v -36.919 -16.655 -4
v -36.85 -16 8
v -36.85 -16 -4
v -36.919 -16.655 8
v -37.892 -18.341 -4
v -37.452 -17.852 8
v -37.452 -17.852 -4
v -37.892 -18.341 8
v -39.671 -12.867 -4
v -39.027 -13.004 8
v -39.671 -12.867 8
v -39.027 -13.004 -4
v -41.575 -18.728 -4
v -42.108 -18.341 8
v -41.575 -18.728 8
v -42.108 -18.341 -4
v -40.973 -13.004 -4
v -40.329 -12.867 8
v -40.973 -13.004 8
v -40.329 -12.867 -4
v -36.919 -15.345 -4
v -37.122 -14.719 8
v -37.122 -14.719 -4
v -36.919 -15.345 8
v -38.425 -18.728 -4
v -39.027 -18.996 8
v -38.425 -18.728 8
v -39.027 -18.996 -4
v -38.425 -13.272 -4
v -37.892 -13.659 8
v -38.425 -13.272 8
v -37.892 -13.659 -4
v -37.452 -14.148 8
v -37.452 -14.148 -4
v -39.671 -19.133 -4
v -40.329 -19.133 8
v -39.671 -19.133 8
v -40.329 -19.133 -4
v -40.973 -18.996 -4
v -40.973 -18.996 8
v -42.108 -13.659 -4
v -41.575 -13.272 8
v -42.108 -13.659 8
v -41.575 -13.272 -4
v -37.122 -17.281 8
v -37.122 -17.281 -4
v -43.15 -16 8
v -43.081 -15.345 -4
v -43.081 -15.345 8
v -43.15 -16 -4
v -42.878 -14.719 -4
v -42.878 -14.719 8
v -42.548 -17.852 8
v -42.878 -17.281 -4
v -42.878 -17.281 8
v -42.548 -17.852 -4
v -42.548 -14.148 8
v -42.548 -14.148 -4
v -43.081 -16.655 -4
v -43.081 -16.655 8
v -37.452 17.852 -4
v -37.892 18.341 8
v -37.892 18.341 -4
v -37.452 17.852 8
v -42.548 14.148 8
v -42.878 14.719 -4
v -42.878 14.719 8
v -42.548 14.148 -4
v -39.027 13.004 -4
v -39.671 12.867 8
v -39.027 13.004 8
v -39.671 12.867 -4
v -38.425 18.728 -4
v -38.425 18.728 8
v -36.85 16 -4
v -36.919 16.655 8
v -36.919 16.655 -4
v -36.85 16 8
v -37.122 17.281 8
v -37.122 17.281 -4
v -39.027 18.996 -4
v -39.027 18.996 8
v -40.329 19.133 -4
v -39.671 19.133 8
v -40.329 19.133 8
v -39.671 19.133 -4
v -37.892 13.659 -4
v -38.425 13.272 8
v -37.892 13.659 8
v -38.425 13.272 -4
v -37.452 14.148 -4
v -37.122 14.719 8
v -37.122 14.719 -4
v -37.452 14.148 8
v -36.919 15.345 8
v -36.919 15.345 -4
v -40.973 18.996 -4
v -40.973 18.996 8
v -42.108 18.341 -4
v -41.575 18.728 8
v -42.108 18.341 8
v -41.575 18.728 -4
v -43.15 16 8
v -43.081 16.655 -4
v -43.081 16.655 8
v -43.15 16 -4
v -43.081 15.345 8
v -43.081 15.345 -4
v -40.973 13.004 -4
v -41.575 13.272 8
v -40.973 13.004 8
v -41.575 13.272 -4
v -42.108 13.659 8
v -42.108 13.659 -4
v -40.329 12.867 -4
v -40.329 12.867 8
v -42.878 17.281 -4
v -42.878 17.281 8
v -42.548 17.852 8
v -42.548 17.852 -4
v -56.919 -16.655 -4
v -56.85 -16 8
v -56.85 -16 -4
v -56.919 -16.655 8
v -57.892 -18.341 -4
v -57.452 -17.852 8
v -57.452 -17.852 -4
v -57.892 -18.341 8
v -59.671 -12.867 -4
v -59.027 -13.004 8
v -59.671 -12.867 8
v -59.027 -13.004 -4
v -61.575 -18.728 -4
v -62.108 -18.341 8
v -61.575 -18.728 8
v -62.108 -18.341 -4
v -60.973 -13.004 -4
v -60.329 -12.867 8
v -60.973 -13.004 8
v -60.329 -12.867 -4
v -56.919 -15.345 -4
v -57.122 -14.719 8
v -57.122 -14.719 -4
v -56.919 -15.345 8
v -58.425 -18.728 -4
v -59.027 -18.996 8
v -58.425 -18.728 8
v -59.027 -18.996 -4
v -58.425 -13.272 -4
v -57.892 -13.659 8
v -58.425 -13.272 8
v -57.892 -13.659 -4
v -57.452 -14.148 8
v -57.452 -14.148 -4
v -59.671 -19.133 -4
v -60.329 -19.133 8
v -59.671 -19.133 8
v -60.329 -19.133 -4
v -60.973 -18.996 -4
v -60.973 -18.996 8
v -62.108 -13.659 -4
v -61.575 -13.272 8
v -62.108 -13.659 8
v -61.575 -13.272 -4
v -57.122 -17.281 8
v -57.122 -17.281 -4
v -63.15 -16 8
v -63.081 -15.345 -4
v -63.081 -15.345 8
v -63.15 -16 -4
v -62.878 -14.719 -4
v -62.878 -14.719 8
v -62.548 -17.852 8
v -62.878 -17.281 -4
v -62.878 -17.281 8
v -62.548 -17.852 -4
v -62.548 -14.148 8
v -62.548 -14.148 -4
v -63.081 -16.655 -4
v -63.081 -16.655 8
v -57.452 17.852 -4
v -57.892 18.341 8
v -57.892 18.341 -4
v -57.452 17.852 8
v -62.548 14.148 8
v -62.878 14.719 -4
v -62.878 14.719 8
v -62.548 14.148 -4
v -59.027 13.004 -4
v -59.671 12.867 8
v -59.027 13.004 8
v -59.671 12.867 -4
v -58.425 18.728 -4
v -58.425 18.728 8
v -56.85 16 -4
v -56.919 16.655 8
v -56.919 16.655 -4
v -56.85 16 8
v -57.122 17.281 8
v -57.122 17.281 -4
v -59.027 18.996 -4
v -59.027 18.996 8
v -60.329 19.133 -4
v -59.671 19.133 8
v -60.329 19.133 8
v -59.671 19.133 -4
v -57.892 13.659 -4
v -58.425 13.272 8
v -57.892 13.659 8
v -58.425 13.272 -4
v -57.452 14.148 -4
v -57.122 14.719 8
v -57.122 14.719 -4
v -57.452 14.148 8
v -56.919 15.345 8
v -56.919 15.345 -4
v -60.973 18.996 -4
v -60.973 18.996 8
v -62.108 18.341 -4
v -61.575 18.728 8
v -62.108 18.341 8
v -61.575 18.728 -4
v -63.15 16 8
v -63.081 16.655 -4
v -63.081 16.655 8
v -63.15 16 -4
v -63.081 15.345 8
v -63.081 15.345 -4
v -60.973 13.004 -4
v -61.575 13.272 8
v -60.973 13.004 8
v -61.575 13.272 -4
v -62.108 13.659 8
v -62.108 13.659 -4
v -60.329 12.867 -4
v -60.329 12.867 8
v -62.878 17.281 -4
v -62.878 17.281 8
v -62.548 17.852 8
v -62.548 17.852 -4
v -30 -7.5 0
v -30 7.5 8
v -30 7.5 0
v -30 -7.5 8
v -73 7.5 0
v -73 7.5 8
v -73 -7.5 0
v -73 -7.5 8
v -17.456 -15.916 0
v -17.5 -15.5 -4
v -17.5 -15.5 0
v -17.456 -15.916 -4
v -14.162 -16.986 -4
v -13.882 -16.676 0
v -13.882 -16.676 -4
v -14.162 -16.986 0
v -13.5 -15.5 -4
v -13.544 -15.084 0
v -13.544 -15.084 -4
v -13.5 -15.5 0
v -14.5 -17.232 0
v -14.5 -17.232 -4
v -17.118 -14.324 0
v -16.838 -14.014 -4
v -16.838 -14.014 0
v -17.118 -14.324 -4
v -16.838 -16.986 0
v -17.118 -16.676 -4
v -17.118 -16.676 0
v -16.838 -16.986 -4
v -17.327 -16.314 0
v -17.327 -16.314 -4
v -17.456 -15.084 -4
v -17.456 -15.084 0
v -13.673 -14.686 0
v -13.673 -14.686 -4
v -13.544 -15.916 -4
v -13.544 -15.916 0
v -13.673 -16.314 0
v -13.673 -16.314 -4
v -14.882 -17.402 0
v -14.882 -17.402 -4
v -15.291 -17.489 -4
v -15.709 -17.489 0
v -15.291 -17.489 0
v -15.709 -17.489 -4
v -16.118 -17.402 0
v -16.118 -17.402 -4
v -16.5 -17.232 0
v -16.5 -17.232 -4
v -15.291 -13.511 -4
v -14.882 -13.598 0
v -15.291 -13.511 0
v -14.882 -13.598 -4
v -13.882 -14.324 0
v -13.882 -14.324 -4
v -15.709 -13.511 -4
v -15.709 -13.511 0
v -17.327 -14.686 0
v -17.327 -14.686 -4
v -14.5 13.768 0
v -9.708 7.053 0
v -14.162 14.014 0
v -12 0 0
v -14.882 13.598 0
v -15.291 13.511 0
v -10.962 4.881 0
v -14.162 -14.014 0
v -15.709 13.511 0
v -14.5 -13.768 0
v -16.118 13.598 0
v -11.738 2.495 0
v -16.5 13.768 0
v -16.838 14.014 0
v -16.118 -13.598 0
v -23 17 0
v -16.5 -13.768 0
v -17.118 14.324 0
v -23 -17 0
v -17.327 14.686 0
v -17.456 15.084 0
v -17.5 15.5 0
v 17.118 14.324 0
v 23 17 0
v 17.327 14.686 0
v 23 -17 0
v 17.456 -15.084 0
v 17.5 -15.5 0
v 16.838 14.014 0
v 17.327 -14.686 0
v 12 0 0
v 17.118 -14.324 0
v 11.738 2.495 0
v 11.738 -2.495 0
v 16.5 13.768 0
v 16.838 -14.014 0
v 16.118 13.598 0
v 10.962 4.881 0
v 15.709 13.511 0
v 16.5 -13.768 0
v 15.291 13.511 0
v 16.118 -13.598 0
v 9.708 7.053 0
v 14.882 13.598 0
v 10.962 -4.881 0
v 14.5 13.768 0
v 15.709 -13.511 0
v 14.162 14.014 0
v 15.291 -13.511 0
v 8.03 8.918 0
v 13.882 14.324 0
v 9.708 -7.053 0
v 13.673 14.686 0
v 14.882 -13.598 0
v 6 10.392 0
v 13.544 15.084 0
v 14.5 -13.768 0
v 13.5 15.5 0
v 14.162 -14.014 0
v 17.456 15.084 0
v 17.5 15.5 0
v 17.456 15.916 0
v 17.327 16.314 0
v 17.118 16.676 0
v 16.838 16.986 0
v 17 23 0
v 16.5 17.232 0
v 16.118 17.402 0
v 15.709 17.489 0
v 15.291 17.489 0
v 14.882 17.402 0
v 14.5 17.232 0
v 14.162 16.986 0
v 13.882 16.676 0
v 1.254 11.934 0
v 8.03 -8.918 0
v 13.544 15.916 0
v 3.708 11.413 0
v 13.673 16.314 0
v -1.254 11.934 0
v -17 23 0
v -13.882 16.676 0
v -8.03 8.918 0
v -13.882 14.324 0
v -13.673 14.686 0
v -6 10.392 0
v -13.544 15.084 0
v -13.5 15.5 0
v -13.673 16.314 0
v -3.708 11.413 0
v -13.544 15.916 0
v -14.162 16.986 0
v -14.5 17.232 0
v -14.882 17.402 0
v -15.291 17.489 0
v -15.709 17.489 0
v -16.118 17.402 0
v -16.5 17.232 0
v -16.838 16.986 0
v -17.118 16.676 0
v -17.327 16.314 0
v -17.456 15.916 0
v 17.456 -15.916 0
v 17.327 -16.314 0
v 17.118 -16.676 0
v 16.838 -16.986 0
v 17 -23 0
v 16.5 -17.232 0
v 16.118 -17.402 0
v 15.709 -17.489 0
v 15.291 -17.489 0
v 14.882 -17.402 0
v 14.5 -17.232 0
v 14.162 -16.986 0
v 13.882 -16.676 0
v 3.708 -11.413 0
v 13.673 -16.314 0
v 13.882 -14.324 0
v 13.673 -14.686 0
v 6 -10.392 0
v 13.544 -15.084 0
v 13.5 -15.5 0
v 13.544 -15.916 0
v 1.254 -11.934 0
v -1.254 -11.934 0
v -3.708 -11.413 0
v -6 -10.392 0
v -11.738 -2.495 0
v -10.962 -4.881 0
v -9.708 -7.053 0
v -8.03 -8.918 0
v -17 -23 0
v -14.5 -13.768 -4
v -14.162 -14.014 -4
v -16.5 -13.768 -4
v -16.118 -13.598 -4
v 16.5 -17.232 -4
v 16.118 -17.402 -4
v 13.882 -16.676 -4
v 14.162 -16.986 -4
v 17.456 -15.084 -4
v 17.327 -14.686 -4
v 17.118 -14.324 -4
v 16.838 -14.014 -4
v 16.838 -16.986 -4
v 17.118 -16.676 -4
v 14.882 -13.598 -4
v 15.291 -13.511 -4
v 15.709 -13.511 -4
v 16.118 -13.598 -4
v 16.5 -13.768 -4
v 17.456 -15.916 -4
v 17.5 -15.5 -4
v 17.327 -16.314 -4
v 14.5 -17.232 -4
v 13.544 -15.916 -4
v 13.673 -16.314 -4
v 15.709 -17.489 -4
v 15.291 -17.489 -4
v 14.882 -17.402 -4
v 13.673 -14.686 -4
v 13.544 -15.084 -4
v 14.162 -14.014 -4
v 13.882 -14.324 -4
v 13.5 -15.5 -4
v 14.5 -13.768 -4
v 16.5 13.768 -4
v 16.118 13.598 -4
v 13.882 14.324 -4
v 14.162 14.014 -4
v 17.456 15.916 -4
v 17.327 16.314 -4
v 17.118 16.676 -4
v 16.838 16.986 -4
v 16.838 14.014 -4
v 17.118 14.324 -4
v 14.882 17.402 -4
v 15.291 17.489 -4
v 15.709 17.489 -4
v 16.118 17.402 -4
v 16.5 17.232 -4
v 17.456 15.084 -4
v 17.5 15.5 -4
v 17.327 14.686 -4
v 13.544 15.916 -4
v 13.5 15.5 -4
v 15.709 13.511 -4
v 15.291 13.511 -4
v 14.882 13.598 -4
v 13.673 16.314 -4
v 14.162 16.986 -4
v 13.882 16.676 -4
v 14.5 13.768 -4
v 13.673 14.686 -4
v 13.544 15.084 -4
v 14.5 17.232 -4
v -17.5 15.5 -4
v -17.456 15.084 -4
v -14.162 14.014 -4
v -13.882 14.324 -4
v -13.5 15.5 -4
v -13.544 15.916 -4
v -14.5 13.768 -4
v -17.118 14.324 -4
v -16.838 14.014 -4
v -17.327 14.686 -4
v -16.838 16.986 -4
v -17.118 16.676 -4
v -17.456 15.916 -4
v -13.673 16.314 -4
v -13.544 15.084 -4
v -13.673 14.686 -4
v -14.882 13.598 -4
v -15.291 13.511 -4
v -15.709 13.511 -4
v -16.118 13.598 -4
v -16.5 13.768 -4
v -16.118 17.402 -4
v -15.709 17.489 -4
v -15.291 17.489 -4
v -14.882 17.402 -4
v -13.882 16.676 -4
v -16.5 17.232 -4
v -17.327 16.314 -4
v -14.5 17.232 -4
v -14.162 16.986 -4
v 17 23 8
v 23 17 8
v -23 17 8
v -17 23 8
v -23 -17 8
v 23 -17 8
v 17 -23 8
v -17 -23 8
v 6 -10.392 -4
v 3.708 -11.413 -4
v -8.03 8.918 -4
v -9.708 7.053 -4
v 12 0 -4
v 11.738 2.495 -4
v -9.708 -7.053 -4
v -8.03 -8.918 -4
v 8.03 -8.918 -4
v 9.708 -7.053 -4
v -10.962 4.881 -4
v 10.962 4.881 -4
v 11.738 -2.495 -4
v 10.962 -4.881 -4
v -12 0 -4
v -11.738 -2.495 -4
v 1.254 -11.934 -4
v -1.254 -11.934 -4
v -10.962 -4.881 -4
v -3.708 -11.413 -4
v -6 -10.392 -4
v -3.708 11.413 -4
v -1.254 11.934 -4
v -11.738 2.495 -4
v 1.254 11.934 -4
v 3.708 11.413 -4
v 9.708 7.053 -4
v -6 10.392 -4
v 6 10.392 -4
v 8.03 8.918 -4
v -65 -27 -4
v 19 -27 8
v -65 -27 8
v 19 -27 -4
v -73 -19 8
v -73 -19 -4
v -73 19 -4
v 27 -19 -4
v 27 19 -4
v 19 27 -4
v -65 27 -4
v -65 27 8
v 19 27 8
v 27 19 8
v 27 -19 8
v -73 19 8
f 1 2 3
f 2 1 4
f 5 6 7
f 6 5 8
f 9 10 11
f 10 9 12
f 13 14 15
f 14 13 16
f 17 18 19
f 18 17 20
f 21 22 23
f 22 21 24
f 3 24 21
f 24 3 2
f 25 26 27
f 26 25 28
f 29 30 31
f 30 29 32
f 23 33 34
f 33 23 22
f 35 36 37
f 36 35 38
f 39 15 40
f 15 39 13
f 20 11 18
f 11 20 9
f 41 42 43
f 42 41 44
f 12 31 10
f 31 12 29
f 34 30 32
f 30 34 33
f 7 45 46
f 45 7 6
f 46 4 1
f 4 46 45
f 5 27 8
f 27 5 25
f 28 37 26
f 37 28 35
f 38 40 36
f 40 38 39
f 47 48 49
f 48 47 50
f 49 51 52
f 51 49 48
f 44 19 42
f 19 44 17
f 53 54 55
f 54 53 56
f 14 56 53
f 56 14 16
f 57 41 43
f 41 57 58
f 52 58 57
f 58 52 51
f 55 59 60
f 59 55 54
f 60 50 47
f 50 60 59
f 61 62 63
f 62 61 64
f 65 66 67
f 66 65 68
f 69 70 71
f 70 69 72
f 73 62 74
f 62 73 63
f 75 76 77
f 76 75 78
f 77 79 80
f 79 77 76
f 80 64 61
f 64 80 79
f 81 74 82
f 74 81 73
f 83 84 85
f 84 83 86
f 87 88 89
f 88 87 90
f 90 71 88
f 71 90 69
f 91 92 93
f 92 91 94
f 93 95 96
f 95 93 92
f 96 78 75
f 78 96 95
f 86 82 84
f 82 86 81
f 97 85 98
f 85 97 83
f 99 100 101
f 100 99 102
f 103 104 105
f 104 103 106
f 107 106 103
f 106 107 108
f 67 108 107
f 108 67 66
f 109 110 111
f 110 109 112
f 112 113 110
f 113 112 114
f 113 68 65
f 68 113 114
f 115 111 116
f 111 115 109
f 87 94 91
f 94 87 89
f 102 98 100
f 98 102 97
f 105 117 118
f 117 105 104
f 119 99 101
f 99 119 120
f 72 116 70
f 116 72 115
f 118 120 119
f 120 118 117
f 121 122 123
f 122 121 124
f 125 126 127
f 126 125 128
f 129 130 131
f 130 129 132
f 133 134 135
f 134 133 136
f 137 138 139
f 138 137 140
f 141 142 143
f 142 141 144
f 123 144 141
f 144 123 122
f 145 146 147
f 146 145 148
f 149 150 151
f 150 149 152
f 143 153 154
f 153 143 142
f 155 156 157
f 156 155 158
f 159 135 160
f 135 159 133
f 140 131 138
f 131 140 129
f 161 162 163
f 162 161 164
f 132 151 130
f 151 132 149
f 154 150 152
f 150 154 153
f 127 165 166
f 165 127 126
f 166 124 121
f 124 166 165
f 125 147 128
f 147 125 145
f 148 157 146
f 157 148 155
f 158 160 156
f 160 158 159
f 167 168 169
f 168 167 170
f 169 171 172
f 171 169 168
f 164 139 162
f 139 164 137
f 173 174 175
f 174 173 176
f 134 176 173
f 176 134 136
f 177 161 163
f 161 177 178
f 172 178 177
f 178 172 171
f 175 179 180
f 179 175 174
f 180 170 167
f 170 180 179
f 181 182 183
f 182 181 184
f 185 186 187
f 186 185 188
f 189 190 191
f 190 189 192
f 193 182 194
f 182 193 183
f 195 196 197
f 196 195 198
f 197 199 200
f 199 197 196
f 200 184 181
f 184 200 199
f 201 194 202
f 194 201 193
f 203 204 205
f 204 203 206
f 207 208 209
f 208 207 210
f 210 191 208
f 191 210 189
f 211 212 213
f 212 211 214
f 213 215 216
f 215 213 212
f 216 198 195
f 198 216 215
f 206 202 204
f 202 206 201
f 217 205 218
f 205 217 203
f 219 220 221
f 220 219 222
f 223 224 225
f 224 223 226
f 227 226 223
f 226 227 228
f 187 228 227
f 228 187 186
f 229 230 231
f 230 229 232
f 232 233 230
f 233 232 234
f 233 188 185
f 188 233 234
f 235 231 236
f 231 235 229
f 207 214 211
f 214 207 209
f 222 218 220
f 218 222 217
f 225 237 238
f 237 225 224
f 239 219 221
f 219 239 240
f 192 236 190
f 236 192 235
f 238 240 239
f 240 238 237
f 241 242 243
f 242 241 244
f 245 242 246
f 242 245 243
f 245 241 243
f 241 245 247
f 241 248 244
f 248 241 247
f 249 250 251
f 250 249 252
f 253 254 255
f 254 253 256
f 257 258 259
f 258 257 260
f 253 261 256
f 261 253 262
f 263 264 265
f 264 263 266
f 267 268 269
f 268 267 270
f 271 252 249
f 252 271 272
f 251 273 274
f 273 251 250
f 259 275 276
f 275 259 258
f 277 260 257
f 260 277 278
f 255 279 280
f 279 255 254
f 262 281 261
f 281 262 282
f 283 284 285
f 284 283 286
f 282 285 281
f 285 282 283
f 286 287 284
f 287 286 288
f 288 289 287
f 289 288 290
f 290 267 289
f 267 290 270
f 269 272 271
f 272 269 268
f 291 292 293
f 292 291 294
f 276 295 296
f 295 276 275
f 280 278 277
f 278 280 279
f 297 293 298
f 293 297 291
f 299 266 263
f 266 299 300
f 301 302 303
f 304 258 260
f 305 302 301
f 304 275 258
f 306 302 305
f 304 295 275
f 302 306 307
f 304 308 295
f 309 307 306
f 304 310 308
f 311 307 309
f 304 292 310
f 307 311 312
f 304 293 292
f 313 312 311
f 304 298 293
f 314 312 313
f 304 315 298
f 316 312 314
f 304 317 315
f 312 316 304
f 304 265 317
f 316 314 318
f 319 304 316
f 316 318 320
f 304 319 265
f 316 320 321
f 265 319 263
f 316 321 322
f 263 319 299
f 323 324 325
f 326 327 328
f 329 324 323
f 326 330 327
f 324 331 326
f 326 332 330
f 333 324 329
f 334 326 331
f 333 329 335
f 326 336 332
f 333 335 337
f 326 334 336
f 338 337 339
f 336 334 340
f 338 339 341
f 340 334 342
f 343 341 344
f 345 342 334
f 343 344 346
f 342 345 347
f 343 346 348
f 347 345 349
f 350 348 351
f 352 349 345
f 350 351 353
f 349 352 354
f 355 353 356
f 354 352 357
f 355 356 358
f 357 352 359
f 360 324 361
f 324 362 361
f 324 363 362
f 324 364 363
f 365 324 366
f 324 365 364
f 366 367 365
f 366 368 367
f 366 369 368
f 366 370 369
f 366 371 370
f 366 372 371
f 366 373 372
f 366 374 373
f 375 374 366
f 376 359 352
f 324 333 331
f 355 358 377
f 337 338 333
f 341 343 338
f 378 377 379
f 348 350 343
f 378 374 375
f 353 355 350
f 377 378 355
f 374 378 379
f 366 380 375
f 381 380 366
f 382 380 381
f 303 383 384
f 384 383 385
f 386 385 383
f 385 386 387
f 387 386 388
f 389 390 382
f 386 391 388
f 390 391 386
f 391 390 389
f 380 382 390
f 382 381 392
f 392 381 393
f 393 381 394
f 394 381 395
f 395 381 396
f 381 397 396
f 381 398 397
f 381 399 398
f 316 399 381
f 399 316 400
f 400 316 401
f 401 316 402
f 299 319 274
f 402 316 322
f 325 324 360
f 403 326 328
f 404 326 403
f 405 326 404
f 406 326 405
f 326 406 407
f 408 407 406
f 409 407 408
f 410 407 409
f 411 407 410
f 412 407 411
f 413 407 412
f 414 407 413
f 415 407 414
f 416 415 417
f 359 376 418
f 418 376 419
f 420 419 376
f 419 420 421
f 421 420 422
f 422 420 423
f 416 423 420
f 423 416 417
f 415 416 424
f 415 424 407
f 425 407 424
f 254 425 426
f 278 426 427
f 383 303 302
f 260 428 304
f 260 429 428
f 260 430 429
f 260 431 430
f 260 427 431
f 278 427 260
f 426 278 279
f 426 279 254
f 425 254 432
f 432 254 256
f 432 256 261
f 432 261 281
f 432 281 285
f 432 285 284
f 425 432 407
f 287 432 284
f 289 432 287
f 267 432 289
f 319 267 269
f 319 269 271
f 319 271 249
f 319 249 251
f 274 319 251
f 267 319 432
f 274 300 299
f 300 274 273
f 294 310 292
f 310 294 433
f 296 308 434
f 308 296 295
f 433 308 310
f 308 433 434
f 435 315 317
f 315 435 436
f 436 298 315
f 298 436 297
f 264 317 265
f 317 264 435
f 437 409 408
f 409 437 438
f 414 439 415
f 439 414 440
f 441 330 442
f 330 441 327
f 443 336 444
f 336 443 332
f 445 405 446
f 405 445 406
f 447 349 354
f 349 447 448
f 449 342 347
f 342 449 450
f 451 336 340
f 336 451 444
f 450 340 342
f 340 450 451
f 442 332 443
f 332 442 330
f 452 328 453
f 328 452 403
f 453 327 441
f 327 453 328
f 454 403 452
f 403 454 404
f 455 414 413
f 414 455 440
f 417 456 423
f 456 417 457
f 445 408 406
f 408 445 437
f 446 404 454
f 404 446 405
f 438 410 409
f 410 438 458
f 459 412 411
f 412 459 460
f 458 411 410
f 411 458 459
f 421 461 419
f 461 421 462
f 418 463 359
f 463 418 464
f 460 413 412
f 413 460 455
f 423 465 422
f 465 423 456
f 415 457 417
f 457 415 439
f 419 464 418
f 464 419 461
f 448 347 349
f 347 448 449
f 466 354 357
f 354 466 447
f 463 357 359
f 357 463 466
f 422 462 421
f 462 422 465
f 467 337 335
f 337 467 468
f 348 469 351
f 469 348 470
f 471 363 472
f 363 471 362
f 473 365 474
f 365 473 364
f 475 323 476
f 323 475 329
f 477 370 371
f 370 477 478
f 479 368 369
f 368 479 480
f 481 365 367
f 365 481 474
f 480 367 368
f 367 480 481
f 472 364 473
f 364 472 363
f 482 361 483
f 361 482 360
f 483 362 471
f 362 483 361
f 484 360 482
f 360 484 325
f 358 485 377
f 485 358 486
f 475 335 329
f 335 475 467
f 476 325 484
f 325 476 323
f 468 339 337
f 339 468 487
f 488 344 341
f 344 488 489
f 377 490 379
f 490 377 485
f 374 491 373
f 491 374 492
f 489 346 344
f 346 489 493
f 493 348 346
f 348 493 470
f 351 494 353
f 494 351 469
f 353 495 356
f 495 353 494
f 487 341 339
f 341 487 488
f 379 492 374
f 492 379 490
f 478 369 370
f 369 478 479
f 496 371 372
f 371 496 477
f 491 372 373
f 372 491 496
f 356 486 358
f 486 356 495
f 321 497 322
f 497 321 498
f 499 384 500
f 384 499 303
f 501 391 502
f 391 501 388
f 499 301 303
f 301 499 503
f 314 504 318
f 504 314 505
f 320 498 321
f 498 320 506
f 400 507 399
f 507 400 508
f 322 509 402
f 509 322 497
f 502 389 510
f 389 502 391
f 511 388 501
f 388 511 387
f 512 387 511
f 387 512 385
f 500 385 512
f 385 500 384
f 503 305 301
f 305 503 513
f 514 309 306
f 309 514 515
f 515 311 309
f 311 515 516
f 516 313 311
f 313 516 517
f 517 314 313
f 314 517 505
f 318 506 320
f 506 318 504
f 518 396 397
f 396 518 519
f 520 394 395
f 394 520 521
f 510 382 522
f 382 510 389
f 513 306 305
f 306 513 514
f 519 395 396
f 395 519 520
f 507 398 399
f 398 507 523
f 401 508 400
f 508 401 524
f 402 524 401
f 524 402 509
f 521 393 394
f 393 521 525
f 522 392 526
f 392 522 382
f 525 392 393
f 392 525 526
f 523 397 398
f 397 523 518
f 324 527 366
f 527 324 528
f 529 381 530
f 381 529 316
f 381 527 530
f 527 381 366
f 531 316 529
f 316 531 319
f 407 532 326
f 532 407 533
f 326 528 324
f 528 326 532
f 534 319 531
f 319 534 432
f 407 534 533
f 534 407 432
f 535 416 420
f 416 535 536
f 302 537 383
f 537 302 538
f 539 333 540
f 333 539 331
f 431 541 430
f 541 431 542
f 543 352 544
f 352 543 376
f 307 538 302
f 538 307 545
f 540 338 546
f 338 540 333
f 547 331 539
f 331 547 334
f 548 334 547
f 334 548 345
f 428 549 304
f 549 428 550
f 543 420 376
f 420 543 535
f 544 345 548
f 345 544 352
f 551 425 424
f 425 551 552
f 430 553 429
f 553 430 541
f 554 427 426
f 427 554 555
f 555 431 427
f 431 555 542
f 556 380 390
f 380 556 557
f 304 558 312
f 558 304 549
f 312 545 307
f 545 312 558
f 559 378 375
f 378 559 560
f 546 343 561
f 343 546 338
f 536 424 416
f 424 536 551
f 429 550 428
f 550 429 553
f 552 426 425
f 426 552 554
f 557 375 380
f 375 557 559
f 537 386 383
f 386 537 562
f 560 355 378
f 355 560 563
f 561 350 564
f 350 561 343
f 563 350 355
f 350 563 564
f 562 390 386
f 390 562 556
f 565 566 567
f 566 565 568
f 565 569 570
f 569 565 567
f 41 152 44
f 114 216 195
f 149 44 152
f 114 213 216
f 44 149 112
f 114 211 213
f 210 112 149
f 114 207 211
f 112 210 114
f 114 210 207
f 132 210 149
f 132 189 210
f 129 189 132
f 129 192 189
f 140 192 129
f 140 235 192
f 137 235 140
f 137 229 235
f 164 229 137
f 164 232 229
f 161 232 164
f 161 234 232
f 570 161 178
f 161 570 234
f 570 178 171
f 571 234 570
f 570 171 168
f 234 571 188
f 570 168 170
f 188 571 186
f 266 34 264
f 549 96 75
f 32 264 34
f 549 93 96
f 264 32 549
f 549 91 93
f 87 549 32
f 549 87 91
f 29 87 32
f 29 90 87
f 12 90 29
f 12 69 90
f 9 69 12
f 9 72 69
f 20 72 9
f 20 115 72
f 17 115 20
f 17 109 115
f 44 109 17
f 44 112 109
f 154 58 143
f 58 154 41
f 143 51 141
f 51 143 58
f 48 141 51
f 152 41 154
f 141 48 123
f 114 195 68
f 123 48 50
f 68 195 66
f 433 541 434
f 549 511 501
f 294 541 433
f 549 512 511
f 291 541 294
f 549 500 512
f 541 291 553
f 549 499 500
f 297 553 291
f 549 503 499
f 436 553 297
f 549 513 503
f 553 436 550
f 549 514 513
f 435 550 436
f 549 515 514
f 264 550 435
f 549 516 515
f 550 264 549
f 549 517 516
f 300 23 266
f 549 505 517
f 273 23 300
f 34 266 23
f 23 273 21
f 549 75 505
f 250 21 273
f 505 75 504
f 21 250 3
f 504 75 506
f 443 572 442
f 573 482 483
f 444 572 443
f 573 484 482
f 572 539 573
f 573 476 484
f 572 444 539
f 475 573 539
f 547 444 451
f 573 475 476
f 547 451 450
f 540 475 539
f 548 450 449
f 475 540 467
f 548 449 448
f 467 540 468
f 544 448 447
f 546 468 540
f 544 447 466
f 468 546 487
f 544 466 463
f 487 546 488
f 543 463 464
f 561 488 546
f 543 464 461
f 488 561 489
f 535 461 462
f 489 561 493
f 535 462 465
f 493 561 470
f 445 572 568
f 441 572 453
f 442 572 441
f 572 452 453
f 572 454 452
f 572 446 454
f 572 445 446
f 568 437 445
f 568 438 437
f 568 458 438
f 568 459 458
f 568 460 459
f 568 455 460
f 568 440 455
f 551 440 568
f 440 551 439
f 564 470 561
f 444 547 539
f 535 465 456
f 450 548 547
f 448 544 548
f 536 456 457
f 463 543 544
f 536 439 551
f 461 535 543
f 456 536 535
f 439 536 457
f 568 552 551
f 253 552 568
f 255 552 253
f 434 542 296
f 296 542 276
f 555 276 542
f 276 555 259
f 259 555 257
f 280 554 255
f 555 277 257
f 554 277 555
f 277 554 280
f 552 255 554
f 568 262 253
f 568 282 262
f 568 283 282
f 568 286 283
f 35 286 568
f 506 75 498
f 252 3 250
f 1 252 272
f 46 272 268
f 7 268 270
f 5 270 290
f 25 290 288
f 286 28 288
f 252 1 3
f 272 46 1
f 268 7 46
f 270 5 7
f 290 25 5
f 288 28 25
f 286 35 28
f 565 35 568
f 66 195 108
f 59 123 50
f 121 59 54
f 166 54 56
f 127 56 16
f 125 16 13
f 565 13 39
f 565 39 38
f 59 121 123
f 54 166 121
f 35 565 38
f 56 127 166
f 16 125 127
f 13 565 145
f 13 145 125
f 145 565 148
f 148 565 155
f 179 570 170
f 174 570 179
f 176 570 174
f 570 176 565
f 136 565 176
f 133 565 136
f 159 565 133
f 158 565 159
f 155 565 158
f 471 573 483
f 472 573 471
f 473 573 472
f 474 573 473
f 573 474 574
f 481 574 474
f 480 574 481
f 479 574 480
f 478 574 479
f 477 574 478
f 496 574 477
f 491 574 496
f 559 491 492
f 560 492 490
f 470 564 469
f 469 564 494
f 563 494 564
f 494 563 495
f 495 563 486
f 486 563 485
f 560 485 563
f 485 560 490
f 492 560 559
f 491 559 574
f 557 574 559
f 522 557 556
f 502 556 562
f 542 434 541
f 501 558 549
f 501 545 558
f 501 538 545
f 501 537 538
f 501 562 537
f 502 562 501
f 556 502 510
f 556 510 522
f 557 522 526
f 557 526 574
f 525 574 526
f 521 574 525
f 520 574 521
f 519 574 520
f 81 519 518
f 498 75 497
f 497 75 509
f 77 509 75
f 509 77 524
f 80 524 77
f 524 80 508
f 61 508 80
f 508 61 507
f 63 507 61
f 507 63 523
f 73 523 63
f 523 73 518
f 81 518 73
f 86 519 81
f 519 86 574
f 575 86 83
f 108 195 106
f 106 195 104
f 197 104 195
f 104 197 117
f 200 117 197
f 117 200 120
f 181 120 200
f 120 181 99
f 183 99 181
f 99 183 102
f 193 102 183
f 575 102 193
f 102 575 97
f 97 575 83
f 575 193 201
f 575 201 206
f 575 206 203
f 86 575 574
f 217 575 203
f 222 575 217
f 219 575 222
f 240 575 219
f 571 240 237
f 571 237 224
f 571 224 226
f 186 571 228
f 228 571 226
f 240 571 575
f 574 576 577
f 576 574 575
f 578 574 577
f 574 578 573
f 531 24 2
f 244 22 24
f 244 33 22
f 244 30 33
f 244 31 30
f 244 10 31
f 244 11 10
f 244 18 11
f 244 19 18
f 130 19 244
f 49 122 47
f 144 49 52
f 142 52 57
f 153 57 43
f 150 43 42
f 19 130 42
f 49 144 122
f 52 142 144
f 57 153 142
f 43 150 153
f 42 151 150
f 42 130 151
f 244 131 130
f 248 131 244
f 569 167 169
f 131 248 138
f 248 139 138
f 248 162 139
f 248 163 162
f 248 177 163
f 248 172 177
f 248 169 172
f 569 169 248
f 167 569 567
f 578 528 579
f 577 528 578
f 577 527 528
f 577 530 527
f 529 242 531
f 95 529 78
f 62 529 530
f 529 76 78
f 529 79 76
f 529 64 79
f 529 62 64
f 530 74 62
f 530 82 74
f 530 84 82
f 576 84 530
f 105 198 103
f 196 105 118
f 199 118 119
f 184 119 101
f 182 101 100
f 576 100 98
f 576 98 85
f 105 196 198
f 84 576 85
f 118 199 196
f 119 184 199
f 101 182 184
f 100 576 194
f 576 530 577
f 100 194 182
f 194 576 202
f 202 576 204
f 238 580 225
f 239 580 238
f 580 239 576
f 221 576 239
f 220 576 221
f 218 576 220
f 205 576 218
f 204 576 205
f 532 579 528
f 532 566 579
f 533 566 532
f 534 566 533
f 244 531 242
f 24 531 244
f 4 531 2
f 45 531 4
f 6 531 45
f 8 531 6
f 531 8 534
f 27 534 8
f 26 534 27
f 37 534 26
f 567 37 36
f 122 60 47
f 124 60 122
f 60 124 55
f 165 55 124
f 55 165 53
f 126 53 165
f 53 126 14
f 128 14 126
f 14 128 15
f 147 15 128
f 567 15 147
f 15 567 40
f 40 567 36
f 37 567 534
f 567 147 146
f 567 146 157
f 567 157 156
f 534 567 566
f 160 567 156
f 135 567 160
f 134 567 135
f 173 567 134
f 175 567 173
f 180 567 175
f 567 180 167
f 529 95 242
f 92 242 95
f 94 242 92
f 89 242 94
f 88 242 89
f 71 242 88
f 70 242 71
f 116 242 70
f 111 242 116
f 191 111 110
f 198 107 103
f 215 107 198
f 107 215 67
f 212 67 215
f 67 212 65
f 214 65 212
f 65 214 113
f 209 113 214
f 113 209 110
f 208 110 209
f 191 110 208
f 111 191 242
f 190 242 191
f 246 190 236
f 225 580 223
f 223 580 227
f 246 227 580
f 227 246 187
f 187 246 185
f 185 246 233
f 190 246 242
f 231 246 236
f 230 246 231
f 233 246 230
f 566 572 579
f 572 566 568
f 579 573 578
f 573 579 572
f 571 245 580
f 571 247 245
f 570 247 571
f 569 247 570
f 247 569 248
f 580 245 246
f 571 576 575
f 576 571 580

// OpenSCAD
// file: openscad-skf/skf.scad
SKF_W1		= 0;
SKF_N 		= 1;
SKF_H		= 2;
SKF_H2		= 3;
SKF_H3		= 4;
SKF_L1		= 5;
SKF_L2		= 6;
SKF_L3		= 7;
SKF_L4		= 8;
SKF_W3		= 9;
SKF_H4		= 10;
SKF_H5		= 11;
SKF_S2		= 12;
SKF_W		= 13;
SKF_H1		= 14;
SKF_H6		= 15;
SKF_F		= 16;
SKF_D1		= 17;
SKF_D2		= 18;
SKF_Emin	= 19;
SKF_Emax	= 20;
SKF_Lmax	= 21;
SKF_KGC		= 22;
SKF_KGR		= 23;
SKF_C		= 24;
SKF_C0		= 25;
SKF_Mx		= 26;
SKF_Mx0		= 27;
SKF_Myz		= 28;
SKF_Myz0	= 29;

SKF_PARAM_NAME = ["W1",  "N", "H", "H2", "H3",   "L1",  "L2",  "L3",  "L4",   "W3", "H4", "H5", "S2", "W", "H1",  "H6", "F", "D1", "D2", "E>", "E<",  "L<", "KGW", "KGR",   "C",  "C0", "Mx", "Mx0", "Myz", "Myz0"];     
SKF_LLTHC_U15  = [  34,  9.5,  24, 4.2,   4.6,   63.3,    40,    26,   4.3,    26,   4.0,  4.3,   4,  15, 	 14,   8.5,  60,  4.5,  7.5,   10,   50,  3920,  0.17,   1.4,  8400, 15400,   56,   103,     49,    90];
SKF_LLTHC_U20  = [  44,   12,  30, 8.3,   5.0,   73.3,    50,    36,  15.0,    32,   6.5,  5.7,   5,  20,    18,   9.3,  60,  6.0,  9.5,   10,   50,  3920,  0.26,   2.3, 12400, 24550,  112,   221,     90,   179];
//etc
	
module skf_rail(P, l=1000)
{
	//check l < SKF_Lmax
	w = P[SKF_W];
	h = P[SKF_H1];
	z = P[SKF_H];
	color("#666666")
	translate([-l/2, -w/2, -z])
	cube([l, w, h]);
}

module skf_carriage_bolts(P)
{
	for (i=[-1,1], j=[-1,1]) 
	translate([i*P[SKF_L3] ,j*P[SKF_W3],0]/2)
	children();
}

module skf_carriage(P)
{
	w  = P[SKF_W1];
	h  = P[SKF_H] - P[SKF_H3];
	l1 = P[SKF_L1];
	l2 = P[SKF_L2];
	b  = P[SKF_H4];
	
	difference()
	{
		union()
		{
			color("silver")
			translate([-l2/2, -w/2, -h])
			cube([l2, w, h]);
		
			color("#444444")
			translate([-l1/2, -w/2+0.1, -h])
			cube([l1, w-0.2, h-0.1]);
		}
		color("black")
		skf_carriage_bolts(P) translate([0,0,-b])
		cylinder(d=P[SKF_S2], h=b+0.1);
	}
}

module skf_assembly(P = SKF_LLTHC_U15, l=600, car=[0.5])
{
	translate([0,0,P[SKF_H]]) 
	{
		skf_rail(P,l);
		travel = l - P[SKF_L1];
		for (c = car)
		{
			translate([-travel/2 + travel * c, 0, 0])
			skf_carriage(P);
		}
		children();
	}
}

/*
if ($preview) skf_assembly(car=[0.25 + sin($t*360)/4, 0.75 + (cos($t*360)*0.25)]);
*/
// file: openscad-shorthand/nema.scad
include <../openscad-shorthand/shorthand.scad>

//                                                            
//                                   shaft diam    bolt diam       conn height
//                      base diam    shaft diam@D  bolt depth      conn width
//        size,  h,     base height, shaft length, bolt offset     conn offset bottom
NEMA8  = [[20.0, 32.0], [16.0, 1.5], [4, 3.5,  8], [2.5, 3,  7.7], [4.5, 11.5, 2.5]];
NEMA17 = [[42.0, 40.0], [23.0, 2.0], [8, 7.5, 25], [3.0, 5, 15.5], [4.5, 11.5, 2.5]];

NEMA_DEFAULT = NEMA17;

function nema_size(nema=NEMA_DEFAULT, h)            = [ nema[0][0], nema[0][0], 
                                                        h == undef ? nema[0][2] : h];
function nema_base_size(nema=NEMA_DEFAULT)          = [nema[1][0], nema[1][0], nema[1][1]];
function nema_base_diam(nema=NEMA_DEFAULT)          = nema[1][0];
function nema_base_height(nema=NEMA_DEFAULT)        = nema[1][1];
function nema_shaft_size(nema=NEMA_DEFAULT)         = [nema[2][0], nema[2][0], nema[2][1]];
function nema_shaft_diam(nema=NEMA_DEFAULT)         = nema[2][0];
function nema_shaft_diam_at_d(nema=NEMA_DEFAULT)    = nema[2][1];
function nema_shaft_length(nema=NEMA_DEFAULT)       = nema[2][2];
function nema_hole_diam(nema=NEMA_DEFAULT)          = nema[3][0];
function nema_hole_depth(nema=NEMA_DEFAULT)         = nema[3][1];
function nema_hole_offset(nema=NEMA_DEFAULT)        = nema[3][2];

module nema_foreach_hole(type=NEMA_DEFAULT, at=[[-1,1], [1,1], [1,-1], [-1,-1]])
{
    for (a = at) {
        echo (a); 
        echo (type);
        echo (nema_hole_offset(type));
        
        translate(nema_hole_offset(type) * a) children();
    }
}

module nema(type = NEMA_DEFAULT, h = 30, mask = undef)
{
    bottom = [0,  0, -0.5];
    top    = [0,  0,  0.5];
    bevel  = [3, -3,  0.0];
    bh = nema_base_height(type);
    bd = nema_base_diam(type);
    sd = nema_shaft_diam(type);
    sl = nema_shaft_length(type);
    hd = nema_hole_diam(type);
    hz = nema_hole_depth(type);
    
    
    if (is_list(mask))
    {
        cub(nema_size(type, h) + mask, align=BOTTOM, bevel=bevel);
    
        nema_foreach_hole(type) 
        cyl([hd,hd,hz] + mask, align=TOP);
       
        cyl([bd,bd,sl] + mask, align=TOP);           
    }
    else difference()
    {
        cub(nema_size(type, h), align=BOTTOM, bevel=bevel, at=TOP)
        cyl([sd,sd,sl], align=TOP, at=BOTTOM) 
        cyl([bd,bd,bh], align=TOP);
    
        union() nema_foreach_hole(type) 
        cyl([hd,hd,hz], align=BOTTOM);
    }
}

// nema();
// nema(NEMA8);
// file: openscad-shorthand/shorthand.scad
// GLOBALS
$fs=1;
$fn=30;
$e = 0.001;

// TRANSLATE
module T(x,y=0,z=0) 
{
	if (is_list(x)) translate(x) children();
	else translate([x,y,z]) children();
}
module Tx(v) { T(v,0,0) children(); }
module Ty(v) { T(0,v,0) children(); }
module Tz(v) { T(0,0,v) children(); }

//ROTATE
module R(x,y=0,z=0)
{
	if (is_list(x)) rotate(x) children();
	else rotate([x,y,z]) children();
}
module Rx(v) { R(v,0,0) children(); }
module Ry(v) { R(0,v,0) children(); }
module Rz(v) { R(0,0,v) children(); }

//SCALE
module S(x,y=1,z=1)
{
	if (is_list(x)) scale(x) children();
	else scale([x,y,z]) children();
}
module Sx(v) { S(v,1,1) children(); }
module Sy(v) { S(1,v,1) children(); }
module Sz(v) { S(1,1,v) children(); }

//MIRROR
//module M(axis) { for (i=[-2,0]) scale(i*axis + [1,1,1]) children(); }
module M(x,y=0,z=0) 
{
	if (is_list(x)) mirror(x) children();
	else mirror([x,y,z]) children();
	children();
}
module Mx(d=0) { M([1,0,0]) Tx(d/2) children(); }
module My(d=0) { M([0,1,0]) Ty(d/2) children(); }
module Mz(d=0) { M([0,0,1]) Tz(d/2) children(); }

// VECTOR HELPERS
function vec3(x,y=0,z=0) = is_list(x) ? ([for (i = [0,1,2]) i < len(x) ? x[i] : 0 ]) :  [x,y,z];
function vec2(x,y=0) =     is_list(x) ? ([for (i = [0,1  ]) i < len(x) ? x[i] : 0 ]) :  [x,y];
function X(v) = v[0];
function Y(v) = v[1];
function Z(v) = v[2];
function vabs(x, y=0, z=0) = [for (v=vec3(x,y,z)) abs(v)];
 
function pmul(va,vb) = 
         [for (i = [0:1:max(len(va),len(vb))-1]) 
          (i >= len(va) 
              ? 0 
              : va[i]) * (i >= len(vb) 
                             ? 0 
                             : vb[i])];

RIGHT = [1,0,0]; LEFT = -RIGHT;
FRONT = [0,1,0]; BACK = -FRONT;
TOP =   [0,0,1]; BOTTOM = -TOP;


// SHAPES 
// identical params means easy switching between primitives
// children will have the center of the face 'at' as origin, or are relative to the center of the object when [0,0,0]

// cylinder. if x != y, the cylinder will be a hull of 2 displaced cylinders with diameter equal to min(x,y) forming an object fitting the specified dimensions 
module cyl(x, y=0, z=0, align=[0,0,0], at=[0,0,0])
{ 
	v = vec3(x,y,z);
    
      s = X(v) != Y(v) 
      ? min(X(v), Y(v)) 
      : X(v);
    
	d = X(v) != Y(v) 
      ? [for (n = [-0.5, 0.5]) n * (v - [s,s,Z(v)])] 
      : [[0,0,0]];
	
	a = is_list(y) 
      ? y 
      : align;
      
	c = is_list(z) 
      ? z 
      : at;
	
    hull() 
    for (i=d) T(i+pmul(a, v/2)) 
    cylinder(d=s, h=Z(v), center=true);
	
    T(pmul(a+c, v/2)) children();
}

//prismoid
module prism(p0, p1, align=[0,0,0], at=[0,0,0])
{
      p = [p0, p1];
      a = is_list(y) ? y : align;
      c = is_list(z) ? z : at;
      hull() for (i=[0,1]) 
      T(pmul(a,v/2))
      Tz(v/(i*4-2) - $e/(i*4-2)) 
      cube([X(p[i]),Y(p[i]), $e]);
      
      T(pmul(a+c,v/2)) children(); 
}

//beveled cube
module cub(x, y=0, z=0, align=[0,0,0], at=[0,0,0], bevel = [.25,-.25,0])
{ 
    v = vec3(x,y,z) - vabs(bevel);
    //b = v - vabs(bevel);
    a = is_list(y) ? y : align;
    c = is_list(z) ? z : at;

    hull() for (i=[-2,2]) 
    T(pmul(a,v/2))
    cube(v+i*bevel, center=true); 

    T(pmul(a+c,v/2)) children(); 
}
// main file
include <openscad-shorthand/shorthand.scad>
include <openscad-shorthand/nema.scad>
include <openscad-skf/skf.scad>

module rail(keepouts=1)
{
    cub(46, 28, 10, [0,0,1], at=[0,0,-1])
    {
        color("silver") 
        Tz(5) 
        cub(300, 12, 8, [0,0,1], at = [0,0,1]) cub(300, 30.5, 30.5, [0,0,1]);
        
        color("red") 
        Mx() My() T(10,10) 
        {
            cyl(4,4,20, [0,0,-1]);
            Tz(-4) cyl(8,8,4, [0,0,0]);    
        }
		
		difference()
		{
			Ty(-30) Tz(-20) 
			{
				hull()
				{
				cyl([60,18,12]);
				cub([80, 10, 12], [0,-1,0]);
				}
				cub([33, 60, 12], [0,1,0]);
			}
			Ty(-30) Tz(-20) 
			cub([15, 30, 12], [0,-1,0]);
		}
	}
}

module pulley()
{
    color("yellow")
    {
        difference()
        {
            cyl(15,15,9.5);
            cyl(16,16,7.0);
        }
        cyl([13,13,9]);
        Tz(12) cyl([6,6,50]);
    }
}

module mask(keepouts = 1)
{
    Tz(-5)
    {
		Ty(-15)
        cub(31, 300, 31, [0,1,-1]);
        // V Bolts
        Tz(25) Ty(25) cyl(5,5,50);
		Tz(-25) {
			cyl(5,5,50);
			//Ty(20) cyl(5,5,50);
		}
        Tz(5)
        {
            Mx() 
            Ty(-30)
			Tz(-20) 
			Tx(18) 
			pulley();
            
			rail(keepouts);
        }
    }
}


module model()
{
    difference()
    {
        Tz(0) 
        {
            //hull()
            {
                //Ty(-3) cub(40,68,40, [0,0,-1]);
                 Ty(-2) cub(40,36,40, [0,0,-1]);
                 Ty(-32) 
				hull()
				{
					cub(50,10,40, [0,0,-1]);
					cub(40,20,40, [0,1,-1]);
				}
			}
            
            /*//Mx() 
            hull() 
            {
                cub(46,40, 13, [0,0,-1]);
                Tx(10) cub(40,30, 13, [0,0,-1]);
                Tz(-10) Tx(20) cub(3,30, 3, [0,0,-1]);
            }
            
            hull()
            {
                Tz(-5) Tx(20) cub(55,18, 3, [0,0,-1]);
                Tz(-10) Tx(20) cub(4,18, 18, [0,0,-1]);
            }
            //Mx() 
            hull() 
            {
                Tx(20) cub(60,30, 4, [0,0,-1]);
                Tx(20) cub(36,30, 13, [0,0,-1]);
                //Tz(-15) Tx(20) cub(4,18, 3, [0,0,-1]);
            }*/
        }
        
        mask();
    }
    % mask(0);
}

//model();

module reinforce()
{
    //Mx() 
    color("red") difference()
    {
        union() {
            hull(){
            
                 cub(46,10, 8, [0,0,-1]);
           
            }
            hull() 
            {
                Tz(0) Tx(30) cub(35,18, 8, [0,0,-1]);
                Tz(-10) Tx(15) cub(14,18, 18, [0,0,-1]);
              
            }
        }
        mask();
    }
}

module frame()
{
    cub(100, 30.5, 30.5, [1,0,0]);
}

//frame();

//Tz(SKF_LLTHC_U15[SKF_H1])


 difference()
{
    hull() Tz(-4) cub([50,50,12], align=TOP, at=LEFT+BOTTOM,bevel=[4,-4,0]) cub([50,50,12], align=TOP+LEFT, bevel=[4,-4,0]);
    
    Tx(-40)
    #My(32) cyl([6.3, 6.3, 100]);
   
    Tx(-60)
    #My(32) cyl([6.3, 6.3, 100]);
    
    Tx(-330) 
    union()
    {
        skf_assembly();
        Mx(660) Rx(180) nema(mask=[1,1,2]);
    }
}
{
    Rx(180) %nema();
    Tx(-330) %skf_assembly();
}       
// PICK one
//color ("red") reinforce();
//color ("#9999FFAA") model();
